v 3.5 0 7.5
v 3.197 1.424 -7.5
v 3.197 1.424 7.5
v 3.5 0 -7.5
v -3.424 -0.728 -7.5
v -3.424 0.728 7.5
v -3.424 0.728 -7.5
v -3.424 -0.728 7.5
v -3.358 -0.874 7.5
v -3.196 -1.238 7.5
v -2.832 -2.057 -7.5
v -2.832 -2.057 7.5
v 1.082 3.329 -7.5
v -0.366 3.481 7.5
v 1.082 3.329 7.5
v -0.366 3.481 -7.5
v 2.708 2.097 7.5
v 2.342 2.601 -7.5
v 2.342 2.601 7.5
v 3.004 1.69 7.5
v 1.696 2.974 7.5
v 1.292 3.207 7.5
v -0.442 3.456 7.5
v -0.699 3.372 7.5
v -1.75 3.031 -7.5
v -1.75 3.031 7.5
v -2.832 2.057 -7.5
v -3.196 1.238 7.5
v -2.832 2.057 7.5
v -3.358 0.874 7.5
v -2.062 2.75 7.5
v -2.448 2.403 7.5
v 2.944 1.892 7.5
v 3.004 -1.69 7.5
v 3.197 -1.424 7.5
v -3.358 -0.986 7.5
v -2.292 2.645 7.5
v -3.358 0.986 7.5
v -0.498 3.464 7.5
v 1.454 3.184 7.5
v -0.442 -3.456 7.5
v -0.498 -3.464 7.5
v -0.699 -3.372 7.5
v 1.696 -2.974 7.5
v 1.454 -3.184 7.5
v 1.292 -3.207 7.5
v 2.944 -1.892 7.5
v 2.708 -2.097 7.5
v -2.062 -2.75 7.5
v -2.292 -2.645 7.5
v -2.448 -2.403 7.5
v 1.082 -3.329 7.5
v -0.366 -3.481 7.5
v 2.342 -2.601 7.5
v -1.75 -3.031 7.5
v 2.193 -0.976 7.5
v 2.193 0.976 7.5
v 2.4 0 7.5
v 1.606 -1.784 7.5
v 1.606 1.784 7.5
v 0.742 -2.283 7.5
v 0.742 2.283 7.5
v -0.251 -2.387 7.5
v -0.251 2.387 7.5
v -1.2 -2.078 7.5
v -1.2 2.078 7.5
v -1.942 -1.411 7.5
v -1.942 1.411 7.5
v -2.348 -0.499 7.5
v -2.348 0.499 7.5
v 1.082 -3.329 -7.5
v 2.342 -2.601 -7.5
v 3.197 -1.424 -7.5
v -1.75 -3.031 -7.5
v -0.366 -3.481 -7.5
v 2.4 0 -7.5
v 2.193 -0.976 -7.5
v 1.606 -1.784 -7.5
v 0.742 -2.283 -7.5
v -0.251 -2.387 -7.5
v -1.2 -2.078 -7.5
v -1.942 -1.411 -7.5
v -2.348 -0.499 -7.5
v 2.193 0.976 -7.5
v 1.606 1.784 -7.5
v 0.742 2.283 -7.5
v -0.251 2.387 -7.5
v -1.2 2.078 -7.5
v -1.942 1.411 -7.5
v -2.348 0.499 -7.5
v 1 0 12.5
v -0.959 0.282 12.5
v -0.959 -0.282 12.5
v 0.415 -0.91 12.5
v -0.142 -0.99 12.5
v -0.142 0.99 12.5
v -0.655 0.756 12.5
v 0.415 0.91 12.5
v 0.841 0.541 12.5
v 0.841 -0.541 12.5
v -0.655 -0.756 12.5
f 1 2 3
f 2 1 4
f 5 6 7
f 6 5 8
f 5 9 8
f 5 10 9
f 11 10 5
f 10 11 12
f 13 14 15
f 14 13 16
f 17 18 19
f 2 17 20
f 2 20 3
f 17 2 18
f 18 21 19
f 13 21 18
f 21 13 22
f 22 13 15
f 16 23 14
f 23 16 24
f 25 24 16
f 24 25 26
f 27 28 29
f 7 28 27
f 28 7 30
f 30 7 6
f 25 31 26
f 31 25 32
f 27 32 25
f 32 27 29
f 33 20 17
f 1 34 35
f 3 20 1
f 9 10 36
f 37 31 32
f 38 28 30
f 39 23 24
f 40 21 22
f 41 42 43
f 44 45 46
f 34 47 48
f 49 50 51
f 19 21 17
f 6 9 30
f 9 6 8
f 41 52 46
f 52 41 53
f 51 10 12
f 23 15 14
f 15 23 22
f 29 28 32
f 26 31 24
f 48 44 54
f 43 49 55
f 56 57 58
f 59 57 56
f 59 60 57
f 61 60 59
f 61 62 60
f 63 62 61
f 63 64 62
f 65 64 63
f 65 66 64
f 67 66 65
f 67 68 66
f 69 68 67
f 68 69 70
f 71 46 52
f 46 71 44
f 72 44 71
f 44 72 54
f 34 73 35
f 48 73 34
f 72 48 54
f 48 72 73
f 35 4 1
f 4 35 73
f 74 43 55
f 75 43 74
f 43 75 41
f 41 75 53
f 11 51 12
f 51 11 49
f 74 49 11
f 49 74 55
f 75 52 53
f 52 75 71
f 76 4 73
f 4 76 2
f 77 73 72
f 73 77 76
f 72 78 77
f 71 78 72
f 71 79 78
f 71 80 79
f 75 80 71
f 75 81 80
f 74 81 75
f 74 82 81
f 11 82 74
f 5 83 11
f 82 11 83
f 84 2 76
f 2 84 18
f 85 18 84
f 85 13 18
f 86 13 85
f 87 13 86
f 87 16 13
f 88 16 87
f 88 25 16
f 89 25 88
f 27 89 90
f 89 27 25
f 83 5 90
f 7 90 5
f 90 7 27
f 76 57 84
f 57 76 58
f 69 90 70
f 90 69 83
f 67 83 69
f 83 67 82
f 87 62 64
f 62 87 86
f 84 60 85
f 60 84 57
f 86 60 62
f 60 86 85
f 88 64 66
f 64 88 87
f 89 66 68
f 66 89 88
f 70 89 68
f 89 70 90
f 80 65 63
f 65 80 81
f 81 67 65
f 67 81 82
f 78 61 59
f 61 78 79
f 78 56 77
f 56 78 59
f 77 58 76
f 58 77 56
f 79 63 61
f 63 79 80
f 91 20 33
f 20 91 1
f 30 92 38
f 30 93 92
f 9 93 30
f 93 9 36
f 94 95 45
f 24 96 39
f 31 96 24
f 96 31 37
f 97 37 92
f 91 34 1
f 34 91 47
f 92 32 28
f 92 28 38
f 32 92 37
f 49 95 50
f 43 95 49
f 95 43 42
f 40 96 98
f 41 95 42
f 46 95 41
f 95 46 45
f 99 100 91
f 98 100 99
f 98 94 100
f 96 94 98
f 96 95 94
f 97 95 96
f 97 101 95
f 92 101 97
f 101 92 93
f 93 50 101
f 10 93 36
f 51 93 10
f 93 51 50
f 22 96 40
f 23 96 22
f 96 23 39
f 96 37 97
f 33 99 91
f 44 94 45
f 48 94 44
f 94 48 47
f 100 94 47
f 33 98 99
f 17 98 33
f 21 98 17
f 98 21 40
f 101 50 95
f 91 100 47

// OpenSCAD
union(){
    difference(){
        cylinder(d1=7, d2=7, h=15,center=true, $fn=15);
        cylinder(d1=4.8, d2=4.8, h=15,center=true, $fn=15);
    }
    translate([0,0,15/2+5/2]) cylinder(d1=7,d2=2,h=5,center=true);
}
